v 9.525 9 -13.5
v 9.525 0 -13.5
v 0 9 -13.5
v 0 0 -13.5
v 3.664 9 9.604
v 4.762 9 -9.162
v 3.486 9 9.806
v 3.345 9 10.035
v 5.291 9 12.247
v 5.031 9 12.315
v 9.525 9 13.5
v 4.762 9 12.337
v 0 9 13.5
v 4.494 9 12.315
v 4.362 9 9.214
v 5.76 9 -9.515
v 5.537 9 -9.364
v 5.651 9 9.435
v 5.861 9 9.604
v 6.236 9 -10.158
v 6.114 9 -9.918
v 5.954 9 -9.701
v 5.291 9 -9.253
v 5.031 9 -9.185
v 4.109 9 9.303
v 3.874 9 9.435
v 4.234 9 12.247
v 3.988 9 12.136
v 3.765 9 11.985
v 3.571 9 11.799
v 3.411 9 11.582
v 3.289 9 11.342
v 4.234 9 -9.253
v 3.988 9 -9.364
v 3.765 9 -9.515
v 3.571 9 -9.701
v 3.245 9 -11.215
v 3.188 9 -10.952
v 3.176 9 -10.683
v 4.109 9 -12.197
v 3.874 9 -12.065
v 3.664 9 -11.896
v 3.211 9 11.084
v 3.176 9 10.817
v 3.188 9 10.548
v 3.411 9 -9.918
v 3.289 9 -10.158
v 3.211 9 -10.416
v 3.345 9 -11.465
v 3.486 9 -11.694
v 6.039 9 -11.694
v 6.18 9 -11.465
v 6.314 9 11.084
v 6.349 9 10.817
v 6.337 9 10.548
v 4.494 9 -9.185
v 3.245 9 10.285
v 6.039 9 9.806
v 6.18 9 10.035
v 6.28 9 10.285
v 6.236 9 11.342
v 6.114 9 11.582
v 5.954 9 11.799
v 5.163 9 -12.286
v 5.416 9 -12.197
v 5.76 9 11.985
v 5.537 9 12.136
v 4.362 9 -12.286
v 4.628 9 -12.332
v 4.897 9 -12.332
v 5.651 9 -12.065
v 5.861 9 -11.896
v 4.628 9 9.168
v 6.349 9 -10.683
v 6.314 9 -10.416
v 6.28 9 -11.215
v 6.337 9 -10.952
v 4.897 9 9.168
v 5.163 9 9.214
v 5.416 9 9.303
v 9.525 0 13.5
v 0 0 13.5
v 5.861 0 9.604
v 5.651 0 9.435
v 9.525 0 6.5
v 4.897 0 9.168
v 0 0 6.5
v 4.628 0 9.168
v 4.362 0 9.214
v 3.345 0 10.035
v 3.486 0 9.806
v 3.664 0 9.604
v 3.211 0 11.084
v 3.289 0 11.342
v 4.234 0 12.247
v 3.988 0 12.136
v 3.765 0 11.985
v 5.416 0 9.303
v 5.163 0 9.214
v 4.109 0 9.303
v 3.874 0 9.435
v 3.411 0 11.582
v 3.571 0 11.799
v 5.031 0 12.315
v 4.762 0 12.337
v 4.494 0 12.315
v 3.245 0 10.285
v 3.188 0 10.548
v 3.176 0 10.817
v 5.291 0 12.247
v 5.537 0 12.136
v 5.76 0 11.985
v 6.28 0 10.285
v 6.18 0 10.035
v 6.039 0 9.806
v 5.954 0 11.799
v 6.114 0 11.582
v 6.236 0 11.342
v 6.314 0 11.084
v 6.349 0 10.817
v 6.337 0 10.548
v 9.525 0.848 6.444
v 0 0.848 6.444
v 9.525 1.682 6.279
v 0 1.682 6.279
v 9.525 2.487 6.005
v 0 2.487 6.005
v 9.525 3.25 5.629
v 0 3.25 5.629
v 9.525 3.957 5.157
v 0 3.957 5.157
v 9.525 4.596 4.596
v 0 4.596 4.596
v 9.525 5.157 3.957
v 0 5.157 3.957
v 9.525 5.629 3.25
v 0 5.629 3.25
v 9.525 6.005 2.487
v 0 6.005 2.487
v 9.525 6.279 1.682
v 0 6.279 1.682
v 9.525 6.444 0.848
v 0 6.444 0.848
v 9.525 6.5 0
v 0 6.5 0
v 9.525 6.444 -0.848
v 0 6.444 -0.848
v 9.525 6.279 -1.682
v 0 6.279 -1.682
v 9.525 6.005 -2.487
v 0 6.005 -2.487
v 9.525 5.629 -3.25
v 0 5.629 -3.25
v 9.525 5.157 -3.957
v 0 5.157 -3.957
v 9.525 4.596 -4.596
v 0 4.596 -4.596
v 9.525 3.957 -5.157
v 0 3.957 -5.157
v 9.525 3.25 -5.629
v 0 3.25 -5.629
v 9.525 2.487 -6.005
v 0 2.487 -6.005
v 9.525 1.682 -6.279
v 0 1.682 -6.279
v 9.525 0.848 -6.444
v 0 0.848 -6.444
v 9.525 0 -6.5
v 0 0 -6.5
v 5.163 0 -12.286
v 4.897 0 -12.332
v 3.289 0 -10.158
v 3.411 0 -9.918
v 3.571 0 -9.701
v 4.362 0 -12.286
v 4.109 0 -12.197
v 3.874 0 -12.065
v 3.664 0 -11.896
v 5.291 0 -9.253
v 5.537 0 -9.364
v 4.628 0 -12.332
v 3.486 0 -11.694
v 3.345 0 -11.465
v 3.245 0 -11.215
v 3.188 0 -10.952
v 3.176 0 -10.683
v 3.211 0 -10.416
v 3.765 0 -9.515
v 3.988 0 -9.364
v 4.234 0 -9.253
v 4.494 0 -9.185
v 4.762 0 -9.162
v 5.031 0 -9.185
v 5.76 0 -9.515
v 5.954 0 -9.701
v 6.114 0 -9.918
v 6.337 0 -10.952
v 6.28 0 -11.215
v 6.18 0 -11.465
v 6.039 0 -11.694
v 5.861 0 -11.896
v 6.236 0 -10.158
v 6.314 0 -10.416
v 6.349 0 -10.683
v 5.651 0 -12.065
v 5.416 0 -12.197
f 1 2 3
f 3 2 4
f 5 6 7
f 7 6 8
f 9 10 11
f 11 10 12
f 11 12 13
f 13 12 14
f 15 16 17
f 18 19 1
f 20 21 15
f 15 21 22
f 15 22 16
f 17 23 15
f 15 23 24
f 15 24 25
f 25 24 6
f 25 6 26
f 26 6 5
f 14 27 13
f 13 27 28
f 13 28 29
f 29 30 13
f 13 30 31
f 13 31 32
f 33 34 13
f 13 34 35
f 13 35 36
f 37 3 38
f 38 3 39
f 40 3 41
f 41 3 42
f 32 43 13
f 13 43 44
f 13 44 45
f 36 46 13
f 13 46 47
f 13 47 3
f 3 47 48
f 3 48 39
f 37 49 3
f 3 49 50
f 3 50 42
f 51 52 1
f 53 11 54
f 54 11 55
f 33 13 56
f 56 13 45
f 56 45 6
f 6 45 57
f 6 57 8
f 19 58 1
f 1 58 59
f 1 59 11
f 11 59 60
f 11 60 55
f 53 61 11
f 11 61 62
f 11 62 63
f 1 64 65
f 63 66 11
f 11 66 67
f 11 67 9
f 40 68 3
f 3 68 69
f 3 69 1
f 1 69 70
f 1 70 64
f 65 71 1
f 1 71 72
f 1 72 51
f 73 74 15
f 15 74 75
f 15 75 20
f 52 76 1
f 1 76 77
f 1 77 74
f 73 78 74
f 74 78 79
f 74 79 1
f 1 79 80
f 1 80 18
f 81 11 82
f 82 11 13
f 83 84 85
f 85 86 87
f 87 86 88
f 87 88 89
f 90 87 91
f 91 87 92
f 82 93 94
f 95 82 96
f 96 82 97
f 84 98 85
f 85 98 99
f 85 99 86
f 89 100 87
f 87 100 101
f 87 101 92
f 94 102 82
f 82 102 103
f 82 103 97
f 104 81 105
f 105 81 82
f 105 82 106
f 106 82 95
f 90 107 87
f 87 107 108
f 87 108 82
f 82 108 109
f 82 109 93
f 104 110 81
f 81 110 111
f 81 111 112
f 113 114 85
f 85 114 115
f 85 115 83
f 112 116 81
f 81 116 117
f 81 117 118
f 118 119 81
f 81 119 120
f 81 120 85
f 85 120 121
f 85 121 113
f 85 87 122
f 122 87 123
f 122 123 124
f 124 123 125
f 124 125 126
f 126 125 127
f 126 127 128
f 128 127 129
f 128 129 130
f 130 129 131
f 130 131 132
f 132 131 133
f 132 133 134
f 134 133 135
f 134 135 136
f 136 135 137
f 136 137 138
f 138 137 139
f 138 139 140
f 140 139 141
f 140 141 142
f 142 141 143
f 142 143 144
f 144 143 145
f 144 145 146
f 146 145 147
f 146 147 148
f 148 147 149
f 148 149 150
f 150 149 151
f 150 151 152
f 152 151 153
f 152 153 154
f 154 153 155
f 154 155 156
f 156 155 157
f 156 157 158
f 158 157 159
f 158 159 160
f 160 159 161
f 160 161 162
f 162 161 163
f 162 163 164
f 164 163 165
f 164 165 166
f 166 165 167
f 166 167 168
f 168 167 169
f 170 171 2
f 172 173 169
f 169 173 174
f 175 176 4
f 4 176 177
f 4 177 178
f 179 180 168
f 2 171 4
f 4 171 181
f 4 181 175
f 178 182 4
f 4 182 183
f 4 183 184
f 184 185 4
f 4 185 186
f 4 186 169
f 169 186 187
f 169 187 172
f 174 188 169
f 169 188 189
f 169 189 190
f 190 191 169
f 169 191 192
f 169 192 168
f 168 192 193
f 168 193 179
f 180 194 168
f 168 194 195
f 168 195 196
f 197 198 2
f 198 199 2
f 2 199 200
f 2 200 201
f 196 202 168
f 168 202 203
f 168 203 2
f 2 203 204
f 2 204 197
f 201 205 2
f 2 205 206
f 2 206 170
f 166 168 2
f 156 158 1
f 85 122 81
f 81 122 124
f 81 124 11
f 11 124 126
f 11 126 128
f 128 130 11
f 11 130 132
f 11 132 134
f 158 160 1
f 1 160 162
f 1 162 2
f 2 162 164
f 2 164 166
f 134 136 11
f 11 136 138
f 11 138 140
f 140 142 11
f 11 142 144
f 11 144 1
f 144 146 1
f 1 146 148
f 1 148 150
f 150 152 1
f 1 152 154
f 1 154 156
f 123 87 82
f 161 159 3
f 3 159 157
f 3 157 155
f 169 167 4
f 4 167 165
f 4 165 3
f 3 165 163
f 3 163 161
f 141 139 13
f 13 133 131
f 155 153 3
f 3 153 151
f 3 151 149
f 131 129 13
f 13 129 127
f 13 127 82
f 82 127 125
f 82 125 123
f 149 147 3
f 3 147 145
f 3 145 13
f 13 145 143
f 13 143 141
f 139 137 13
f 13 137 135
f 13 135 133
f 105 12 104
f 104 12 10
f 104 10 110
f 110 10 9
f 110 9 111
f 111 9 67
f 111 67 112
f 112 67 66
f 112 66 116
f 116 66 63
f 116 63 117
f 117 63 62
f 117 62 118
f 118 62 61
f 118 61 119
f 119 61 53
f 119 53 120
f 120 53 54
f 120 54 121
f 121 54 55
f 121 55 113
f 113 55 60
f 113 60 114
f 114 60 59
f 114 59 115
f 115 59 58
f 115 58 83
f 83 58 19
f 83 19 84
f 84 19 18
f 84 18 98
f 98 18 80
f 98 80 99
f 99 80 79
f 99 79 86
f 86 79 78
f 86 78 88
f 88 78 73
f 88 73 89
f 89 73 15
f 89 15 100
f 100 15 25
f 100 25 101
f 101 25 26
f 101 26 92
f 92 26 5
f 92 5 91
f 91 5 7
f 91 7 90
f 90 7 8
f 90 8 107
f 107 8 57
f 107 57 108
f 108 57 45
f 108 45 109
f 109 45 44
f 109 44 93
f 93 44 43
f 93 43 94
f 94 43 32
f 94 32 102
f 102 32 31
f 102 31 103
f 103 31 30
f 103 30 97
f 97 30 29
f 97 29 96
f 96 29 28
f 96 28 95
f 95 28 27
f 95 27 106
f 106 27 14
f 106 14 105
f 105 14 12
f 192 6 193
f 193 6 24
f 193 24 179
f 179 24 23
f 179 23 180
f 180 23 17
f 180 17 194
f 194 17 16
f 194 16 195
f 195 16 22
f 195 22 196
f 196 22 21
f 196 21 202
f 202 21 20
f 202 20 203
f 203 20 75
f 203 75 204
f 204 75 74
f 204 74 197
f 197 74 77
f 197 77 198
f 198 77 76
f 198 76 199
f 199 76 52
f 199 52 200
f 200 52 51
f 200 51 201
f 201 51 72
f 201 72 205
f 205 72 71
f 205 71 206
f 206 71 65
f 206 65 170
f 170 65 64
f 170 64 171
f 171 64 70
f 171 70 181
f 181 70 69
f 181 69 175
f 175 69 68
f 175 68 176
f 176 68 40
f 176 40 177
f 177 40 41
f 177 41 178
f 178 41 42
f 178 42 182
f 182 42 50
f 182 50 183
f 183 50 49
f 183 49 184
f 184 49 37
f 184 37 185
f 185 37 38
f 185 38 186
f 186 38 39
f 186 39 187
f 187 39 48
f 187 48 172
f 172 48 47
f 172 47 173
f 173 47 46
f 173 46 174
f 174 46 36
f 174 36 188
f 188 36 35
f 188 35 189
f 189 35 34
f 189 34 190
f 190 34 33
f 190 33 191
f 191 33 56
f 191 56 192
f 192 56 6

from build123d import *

# Parameters (mm, degrees)
BOSS_EXTRUDE1_DEPTH = 9.525
SKETCH2_R           = 1.5875
CUT_EXTRUDE1_DEPTH  = 19.814239953


with BuildPart() as part:
    # Sketch1 → Boss-Extrude1 (new body)
    with BuildSketch(Plane(origin=(0, 0, 0), x_dir=(0, 0, -1), z_dir=(1, 0, 0))):
        with BuildLine():
            Line((-6.5, 0), (-13.5, 0))
            Line((-13.5, 0), (-13.5, 9))
            Line((-13.5, 9), (13.5, 9))
            Line((13.5, 9), (13.5, 0))
            Line((13.5, 0), (6.5, 0))
            ThreePointArc((6.5, 0), (0, 6.5), (-6.5, 0))
        make_face()
    extrude(amount=BOSS_EXTRUDE1_DEPTH)

    # Sketch2 → Cut-Extrude1 (cut, through all)
    with BuildSketch(Plane(origin=(0, 9, 0), x_dir=(1, 0, 0), z_dir=(0, 1, 0))):
        with Locations(Location((4.7625, -10.75, 0), (0, 0, 270))):
            Circle(SKETCH2_R)
        with Locations(Location((4.7625, 10.75, 0), (0, 0, 270))):
            Circle(SKETCH2_R)
    extrude(amount=-CUT_EXTRUDE1_DEPTH, mode=Mode.SUBTRACT)


solid = part.part
